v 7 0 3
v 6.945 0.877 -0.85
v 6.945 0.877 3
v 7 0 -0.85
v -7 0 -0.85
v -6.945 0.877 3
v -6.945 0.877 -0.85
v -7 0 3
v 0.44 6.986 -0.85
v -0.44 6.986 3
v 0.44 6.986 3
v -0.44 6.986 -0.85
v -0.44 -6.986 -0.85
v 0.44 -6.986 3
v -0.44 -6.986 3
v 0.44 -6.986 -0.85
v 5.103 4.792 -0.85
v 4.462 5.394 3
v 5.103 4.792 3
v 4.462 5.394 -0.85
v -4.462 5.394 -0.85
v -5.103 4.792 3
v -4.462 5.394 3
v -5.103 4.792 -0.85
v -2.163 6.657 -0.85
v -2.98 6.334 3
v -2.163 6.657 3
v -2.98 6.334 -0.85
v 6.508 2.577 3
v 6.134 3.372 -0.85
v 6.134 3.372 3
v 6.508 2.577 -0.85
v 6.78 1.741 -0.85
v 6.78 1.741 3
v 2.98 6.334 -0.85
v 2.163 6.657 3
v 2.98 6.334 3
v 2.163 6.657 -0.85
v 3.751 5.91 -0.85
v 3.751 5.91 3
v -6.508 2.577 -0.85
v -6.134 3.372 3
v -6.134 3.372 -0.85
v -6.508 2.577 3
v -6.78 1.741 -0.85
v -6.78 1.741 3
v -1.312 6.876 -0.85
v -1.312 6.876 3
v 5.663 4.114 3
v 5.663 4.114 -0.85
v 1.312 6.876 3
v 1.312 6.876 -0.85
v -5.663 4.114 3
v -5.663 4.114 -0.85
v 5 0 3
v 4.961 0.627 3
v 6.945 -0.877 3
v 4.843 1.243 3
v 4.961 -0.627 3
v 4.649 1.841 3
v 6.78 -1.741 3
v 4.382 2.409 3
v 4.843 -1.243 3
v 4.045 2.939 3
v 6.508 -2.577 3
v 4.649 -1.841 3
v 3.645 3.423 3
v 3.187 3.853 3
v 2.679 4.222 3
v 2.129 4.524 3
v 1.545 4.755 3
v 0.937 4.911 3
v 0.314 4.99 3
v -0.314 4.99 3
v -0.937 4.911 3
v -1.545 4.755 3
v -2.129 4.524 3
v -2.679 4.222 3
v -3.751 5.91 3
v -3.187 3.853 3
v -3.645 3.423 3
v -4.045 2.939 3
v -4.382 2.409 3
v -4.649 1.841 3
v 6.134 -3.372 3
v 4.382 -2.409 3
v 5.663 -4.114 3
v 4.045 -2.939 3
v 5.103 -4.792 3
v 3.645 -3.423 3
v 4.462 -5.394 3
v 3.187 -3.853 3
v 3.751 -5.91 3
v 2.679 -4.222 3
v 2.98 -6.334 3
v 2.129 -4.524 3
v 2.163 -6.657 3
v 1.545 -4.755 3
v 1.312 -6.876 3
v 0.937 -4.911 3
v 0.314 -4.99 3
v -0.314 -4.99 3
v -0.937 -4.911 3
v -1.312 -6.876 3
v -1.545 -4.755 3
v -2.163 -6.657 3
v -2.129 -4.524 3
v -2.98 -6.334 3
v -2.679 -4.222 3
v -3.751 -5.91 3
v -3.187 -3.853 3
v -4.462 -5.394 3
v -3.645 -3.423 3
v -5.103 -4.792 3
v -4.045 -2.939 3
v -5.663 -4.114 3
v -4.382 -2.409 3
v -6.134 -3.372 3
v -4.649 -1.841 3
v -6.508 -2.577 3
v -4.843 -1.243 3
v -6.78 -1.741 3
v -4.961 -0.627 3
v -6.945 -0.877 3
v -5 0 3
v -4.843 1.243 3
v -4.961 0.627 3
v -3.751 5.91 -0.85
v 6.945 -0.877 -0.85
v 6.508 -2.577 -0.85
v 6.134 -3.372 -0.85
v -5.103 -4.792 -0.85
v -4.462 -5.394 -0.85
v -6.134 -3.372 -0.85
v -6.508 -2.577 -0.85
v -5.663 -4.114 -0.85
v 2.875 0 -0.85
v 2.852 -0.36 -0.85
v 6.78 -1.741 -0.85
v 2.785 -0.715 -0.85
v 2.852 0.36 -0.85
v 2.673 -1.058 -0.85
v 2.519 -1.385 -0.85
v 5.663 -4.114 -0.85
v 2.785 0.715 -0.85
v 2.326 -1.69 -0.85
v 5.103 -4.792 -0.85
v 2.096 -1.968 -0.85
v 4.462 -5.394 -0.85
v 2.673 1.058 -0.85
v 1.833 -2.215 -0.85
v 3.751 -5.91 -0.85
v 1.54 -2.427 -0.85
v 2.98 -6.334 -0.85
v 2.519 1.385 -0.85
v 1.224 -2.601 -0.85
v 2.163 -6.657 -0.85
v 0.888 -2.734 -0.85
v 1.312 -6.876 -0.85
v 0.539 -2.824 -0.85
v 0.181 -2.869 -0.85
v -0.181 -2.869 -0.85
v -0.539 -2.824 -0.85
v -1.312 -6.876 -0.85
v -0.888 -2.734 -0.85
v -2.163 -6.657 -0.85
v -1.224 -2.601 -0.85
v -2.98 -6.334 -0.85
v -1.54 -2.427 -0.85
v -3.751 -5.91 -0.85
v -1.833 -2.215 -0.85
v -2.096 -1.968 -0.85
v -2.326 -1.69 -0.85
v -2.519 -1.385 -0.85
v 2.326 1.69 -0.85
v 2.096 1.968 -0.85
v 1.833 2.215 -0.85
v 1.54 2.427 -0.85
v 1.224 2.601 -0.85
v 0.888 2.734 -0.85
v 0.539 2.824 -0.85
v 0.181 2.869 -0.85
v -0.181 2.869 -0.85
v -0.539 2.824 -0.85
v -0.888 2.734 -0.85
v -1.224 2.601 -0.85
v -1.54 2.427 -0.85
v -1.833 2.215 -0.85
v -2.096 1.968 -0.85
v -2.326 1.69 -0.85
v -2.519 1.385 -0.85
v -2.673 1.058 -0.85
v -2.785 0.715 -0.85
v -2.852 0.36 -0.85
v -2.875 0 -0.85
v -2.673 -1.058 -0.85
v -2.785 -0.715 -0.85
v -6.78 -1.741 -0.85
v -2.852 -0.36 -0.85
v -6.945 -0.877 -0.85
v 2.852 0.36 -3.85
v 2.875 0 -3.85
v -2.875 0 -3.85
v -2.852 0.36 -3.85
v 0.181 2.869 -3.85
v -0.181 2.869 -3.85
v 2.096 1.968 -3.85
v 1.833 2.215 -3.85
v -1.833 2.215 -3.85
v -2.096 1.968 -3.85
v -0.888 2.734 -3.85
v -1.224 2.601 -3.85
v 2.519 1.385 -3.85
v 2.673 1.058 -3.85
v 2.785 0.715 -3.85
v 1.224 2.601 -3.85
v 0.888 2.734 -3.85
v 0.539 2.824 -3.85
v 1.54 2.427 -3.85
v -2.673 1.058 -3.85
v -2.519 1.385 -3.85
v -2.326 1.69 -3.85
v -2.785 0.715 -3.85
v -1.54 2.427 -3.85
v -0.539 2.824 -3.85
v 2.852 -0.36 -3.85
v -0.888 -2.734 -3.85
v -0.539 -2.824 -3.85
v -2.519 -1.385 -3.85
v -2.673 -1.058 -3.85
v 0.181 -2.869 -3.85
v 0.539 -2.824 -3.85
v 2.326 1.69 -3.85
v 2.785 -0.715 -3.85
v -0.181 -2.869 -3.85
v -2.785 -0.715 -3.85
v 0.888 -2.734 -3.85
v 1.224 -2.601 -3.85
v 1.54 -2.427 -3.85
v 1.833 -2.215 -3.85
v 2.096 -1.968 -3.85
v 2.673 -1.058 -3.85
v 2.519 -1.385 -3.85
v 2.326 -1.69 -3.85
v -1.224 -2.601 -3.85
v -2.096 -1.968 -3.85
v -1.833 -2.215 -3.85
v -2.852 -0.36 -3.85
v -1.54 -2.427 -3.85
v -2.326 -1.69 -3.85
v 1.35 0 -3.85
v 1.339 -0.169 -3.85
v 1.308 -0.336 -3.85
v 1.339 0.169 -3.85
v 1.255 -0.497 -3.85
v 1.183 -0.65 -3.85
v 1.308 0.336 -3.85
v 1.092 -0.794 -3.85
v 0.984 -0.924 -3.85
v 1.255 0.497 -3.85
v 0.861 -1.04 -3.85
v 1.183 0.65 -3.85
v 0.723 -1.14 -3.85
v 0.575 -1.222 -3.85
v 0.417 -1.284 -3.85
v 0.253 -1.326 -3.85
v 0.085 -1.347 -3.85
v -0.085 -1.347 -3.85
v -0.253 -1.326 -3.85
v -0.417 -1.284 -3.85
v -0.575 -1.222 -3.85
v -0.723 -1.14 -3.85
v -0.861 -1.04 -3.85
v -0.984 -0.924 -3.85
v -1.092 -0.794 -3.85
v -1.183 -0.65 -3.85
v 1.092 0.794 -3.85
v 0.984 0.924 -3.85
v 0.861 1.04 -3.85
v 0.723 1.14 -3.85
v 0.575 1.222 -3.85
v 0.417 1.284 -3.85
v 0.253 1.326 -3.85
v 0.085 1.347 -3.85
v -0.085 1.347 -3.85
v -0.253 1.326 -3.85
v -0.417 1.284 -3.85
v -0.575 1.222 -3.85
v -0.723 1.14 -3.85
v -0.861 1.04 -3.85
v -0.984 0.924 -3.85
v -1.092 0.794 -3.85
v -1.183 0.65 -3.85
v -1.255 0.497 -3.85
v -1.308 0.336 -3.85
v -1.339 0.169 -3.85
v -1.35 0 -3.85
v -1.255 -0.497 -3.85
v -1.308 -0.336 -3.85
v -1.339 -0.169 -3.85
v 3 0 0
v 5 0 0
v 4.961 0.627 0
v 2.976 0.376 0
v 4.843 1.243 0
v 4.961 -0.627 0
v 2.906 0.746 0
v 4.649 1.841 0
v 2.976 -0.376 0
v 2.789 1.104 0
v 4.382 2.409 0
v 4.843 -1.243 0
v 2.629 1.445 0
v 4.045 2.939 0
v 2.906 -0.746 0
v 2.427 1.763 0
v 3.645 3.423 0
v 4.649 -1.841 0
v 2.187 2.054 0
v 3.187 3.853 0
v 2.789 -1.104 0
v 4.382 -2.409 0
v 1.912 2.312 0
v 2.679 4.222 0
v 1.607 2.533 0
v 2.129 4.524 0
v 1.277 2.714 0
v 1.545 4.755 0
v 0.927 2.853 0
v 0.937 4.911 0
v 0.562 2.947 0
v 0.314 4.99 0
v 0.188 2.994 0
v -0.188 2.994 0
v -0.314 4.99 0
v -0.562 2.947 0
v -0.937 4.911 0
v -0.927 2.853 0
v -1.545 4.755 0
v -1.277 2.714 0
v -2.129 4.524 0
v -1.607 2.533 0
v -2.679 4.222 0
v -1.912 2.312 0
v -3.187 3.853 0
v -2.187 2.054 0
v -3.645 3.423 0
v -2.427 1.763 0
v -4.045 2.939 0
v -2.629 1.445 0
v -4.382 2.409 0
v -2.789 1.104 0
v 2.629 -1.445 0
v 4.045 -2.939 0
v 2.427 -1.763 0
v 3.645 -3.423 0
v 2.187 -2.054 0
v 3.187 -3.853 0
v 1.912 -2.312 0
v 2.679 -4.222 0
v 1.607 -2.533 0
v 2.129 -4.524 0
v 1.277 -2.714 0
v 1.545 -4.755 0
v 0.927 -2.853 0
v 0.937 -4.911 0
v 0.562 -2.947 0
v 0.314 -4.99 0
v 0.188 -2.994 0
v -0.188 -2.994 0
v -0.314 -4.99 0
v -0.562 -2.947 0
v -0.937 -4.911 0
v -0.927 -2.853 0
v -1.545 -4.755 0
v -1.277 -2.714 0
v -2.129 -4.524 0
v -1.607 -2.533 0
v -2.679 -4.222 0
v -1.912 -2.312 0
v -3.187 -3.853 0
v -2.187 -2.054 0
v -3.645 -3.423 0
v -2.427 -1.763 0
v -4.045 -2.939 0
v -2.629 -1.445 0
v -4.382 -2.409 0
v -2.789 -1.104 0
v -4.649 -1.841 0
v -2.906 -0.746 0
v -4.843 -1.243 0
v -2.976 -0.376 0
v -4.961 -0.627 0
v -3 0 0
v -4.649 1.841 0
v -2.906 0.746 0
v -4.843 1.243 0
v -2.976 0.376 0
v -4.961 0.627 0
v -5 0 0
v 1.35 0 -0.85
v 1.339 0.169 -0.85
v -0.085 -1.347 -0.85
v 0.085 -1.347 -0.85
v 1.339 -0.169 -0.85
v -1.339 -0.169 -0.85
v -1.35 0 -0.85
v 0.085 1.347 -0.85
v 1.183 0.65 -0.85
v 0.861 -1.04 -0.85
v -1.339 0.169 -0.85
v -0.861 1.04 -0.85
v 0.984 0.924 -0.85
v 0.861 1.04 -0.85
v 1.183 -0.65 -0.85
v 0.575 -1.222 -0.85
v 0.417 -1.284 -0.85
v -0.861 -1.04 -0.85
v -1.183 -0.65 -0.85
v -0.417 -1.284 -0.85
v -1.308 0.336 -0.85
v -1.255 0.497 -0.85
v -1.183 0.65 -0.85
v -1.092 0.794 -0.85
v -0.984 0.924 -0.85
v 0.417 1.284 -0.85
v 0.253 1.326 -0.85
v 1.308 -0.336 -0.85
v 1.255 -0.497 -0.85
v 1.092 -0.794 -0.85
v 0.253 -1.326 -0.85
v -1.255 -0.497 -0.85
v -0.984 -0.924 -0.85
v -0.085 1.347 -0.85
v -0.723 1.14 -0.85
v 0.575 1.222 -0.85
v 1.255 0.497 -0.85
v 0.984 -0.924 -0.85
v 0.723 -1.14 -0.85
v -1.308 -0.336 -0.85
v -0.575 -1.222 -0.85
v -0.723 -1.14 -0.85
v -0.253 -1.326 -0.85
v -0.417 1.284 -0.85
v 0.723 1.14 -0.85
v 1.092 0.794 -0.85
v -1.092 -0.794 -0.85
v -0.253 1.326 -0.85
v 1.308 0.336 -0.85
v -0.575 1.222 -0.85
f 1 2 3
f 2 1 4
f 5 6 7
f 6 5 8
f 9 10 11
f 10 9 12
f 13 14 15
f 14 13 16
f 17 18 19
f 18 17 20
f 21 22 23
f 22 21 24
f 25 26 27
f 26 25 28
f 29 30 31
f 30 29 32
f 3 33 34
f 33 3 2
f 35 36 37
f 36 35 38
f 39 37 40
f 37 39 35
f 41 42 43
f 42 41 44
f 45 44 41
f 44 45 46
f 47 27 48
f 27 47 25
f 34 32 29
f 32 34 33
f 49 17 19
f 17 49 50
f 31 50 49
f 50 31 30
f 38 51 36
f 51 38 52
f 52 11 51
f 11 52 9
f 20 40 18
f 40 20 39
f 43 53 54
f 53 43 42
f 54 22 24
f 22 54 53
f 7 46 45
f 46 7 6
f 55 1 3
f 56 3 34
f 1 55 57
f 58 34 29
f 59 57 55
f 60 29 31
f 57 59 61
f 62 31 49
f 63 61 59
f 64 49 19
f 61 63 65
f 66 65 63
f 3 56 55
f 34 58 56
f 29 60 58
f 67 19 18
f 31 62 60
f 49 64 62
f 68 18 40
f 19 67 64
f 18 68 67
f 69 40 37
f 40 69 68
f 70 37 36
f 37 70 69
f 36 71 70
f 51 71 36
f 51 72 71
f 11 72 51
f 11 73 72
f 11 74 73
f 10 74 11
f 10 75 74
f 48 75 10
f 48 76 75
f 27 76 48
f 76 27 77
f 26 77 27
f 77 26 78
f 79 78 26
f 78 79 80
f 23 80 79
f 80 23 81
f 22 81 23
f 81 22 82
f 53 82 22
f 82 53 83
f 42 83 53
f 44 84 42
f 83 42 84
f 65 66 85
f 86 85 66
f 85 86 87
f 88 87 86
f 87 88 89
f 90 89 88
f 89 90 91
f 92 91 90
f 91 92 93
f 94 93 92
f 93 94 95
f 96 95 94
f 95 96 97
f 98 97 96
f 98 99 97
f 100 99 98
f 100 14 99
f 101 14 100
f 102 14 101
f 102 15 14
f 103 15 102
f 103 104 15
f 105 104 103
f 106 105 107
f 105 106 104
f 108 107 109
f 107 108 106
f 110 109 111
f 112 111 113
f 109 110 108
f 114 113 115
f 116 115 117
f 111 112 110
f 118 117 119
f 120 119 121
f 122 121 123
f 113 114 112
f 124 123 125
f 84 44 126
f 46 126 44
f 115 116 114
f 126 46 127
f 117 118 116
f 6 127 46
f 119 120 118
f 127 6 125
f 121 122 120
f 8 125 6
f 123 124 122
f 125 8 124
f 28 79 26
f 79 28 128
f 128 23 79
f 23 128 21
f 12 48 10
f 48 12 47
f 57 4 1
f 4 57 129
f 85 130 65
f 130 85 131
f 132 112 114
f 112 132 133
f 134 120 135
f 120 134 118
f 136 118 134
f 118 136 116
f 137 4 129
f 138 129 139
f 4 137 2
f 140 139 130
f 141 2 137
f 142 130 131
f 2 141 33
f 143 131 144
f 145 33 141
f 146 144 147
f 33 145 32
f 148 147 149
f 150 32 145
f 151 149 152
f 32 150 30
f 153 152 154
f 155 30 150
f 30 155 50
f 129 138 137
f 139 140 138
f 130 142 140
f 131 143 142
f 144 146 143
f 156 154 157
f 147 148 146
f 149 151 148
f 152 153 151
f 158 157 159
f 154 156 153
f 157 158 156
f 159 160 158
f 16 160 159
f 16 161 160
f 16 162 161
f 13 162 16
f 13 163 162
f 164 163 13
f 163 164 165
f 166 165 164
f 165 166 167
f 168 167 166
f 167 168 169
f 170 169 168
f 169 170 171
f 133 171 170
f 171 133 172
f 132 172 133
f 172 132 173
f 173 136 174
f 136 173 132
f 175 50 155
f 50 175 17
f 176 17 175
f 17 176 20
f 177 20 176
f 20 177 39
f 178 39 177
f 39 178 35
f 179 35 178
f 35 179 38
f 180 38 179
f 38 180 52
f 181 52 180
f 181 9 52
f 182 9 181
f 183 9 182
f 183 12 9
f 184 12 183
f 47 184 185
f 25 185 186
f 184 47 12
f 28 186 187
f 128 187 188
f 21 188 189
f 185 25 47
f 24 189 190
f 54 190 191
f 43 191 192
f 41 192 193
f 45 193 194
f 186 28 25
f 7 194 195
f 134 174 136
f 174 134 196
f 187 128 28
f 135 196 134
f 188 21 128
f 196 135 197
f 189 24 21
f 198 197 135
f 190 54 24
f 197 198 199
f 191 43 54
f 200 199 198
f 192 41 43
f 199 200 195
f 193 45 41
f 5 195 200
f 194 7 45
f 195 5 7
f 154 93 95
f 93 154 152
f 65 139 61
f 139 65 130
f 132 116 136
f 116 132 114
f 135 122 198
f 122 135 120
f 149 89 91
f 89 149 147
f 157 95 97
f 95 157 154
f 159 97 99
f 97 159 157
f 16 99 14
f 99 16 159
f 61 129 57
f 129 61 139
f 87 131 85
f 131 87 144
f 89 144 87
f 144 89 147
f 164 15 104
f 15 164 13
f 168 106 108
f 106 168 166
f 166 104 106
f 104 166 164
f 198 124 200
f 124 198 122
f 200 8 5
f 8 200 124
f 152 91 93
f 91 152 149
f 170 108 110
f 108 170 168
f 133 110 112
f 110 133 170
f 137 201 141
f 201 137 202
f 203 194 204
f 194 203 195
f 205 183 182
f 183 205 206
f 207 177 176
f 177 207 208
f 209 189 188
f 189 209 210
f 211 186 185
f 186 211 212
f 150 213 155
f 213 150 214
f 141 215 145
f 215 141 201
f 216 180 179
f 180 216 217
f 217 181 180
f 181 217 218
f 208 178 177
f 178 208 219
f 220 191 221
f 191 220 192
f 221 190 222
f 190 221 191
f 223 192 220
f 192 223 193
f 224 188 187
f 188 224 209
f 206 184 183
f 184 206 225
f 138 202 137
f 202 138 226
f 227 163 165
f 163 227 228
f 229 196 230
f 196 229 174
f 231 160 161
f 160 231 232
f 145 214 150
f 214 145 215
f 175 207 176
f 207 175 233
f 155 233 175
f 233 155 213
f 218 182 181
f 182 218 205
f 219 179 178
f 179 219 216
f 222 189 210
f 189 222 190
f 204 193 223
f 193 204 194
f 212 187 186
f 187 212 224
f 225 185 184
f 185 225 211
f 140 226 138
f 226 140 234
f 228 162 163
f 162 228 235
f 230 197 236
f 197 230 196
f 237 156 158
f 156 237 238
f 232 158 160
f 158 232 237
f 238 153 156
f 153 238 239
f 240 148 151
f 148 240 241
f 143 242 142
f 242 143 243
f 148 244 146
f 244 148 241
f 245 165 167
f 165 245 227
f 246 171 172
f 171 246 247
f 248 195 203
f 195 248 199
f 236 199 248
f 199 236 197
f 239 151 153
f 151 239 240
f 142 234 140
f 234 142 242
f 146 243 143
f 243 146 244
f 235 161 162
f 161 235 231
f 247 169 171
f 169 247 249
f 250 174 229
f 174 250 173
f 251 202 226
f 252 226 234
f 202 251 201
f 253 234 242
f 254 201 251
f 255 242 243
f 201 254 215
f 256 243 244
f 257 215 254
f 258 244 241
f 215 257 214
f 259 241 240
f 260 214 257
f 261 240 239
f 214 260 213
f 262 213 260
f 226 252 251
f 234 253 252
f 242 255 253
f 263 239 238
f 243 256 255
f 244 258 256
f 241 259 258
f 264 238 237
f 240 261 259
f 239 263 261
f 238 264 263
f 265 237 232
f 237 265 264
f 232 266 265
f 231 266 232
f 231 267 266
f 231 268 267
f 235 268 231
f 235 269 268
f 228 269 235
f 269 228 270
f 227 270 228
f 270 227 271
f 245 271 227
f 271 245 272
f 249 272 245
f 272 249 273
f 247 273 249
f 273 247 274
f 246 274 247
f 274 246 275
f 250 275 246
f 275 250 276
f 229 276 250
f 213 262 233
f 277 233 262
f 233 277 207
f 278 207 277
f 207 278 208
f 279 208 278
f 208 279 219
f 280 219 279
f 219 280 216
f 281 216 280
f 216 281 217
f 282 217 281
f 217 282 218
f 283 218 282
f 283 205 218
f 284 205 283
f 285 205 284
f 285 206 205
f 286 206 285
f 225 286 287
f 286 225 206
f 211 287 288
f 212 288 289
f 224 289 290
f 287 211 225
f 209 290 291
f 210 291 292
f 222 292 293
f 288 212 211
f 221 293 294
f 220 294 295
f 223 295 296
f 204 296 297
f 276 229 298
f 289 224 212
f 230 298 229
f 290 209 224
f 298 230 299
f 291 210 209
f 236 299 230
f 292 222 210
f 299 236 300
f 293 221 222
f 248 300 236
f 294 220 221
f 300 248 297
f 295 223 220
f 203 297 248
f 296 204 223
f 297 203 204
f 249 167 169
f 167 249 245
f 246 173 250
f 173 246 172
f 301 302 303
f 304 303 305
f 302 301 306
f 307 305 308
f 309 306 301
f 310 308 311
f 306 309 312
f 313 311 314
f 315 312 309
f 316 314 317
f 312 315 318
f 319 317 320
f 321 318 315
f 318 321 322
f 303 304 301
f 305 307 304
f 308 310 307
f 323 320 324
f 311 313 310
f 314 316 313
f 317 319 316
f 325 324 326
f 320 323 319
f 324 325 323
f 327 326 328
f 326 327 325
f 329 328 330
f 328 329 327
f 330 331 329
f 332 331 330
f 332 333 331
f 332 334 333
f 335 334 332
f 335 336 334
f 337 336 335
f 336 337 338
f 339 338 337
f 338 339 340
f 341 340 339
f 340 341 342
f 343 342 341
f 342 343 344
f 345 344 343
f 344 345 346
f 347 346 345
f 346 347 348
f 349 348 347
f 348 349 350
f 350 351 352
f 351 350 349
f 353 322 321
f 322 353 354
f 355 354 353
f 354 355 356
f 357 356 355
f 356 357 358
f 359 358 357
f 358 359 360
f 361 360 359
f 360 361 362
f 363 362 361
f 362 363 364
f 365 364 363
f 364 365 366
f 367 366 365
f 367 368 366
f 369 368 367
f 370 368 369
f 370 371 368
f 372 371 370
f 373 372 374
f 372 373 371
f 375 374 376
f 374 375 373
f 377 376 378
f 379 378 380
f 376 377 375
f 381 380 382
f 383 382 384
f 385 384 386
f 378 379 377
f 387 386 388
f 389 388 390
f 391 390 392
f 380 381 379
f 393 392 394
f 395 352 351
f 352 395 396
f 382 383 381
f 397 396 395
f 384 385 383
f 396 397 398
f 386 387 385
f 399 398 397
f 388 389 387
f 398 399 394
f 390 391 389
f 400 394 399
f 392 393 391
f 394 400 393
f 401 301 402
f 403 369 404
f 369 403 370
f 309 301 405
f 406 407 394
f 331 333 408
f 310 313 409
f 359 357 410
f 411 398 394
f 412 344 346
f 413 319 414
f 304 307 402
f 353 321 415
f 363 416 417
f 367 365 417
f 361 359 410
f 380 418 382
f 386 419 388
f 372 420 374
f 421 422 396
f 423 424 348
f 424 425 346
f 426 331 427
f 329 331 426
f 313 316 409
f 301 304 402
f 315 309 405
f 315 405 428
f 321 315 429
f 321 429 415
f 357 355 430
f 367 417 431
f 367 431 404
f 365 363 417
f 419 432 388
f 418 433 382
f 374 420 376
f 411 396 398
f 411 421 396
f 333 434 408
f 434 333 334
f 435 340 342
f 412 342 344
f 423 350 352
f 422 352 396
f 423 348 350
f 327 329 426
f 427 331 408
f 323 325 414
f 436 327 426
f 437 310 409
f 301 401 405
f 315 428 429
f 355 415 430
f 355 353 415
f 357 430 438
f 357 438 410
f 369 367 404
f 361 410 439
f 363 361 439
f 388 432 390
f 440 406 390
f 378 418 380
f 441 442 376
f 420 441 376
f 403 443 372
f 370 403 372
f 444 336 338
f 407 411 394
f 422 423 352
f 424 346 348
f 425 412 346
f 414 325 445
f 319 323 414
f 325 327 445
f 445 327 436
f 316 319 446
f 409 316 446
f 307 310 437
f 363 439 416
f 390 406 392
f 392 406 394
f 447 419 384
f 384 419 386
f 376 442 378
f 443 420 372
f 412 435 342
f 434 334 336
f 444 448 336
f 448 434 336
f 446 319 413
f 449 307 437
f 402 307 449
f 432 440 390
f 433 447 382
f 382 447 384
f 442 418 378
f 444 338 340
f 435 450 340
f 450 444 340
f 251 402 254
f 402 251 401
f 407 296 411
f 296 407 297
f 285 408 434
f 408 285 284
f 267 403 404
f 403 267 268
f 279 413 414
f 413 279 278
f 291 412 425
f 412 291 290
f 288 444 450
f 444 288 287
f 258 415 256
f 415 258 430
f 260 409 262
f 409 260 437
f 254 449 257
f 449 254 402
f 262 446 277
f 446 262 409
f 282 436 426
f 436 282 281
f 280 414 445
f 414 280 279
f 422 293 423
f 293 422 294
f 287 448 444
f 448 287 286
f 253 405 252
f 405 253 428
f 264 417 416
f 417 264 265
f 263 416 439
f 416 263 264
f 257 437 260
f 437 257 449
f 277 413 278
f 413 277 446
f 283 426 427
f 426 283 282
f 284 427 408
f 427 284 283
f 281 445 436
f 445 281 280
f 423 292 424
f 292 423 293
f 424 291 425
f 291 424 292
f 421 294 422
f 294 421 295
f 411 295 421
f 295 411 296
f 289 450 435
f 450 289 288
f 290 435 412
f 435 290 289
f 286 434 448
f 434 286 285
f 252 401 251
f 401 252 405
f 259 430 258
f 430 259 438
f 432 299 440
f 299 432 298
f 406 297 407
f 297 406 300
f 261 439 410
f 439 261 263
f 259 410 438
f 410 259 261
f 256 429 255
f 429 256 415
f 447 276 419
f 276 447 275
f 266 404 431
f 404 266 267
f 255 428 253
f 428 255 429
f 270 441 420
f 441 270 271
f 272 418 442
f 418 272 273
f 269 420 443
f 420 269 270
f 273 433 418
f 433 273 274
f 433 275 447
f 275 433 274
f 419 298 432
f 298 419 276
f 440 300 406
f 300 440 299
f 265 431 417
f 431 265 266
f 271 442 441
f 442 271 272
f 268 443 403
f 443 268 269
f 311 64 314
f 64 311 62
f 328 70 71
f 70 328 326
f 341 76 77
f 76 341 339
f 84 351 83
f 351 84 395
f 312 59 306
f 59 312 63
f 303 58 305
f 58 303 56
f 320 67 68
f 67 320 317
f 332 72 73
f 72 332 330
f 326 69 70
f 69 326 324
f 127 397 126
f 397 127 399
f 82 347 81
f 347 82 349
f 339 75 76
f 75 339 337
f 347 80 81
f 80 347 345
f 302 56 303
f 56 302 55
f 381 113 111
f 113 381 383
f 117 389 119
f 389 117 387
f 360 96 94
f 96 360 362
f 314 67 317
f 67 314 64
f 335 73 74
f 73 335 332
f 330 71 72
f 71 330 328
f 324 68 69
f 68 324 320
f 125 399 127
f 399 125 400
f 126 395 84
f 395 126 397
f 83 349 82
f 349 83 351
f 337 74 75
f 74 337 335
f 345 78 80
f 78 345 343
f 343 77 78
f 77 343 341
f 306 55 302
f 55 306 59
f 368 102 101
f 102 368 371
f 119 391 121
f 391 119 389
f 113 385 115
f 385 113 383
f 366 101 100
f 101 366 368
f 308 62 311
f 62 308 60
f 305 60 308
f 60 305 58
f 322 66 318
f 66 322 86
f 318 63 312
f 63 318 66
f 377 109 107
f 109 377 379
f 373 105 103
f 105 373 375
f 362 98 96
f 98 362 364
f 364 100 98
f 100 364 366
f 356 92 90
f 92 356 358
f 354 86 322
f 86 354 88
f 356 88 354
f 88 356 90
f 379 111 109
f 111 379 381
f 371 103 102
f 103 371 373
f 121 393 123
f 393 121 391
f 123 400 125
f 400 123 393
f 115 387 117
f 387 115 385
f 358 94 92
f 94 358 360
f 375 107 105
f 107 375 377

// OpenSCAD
$fn = 50;


difference() {
	union() {
		translate(v = [0, 0, -0.8500000000]) {
			cylinder(h = 3.8500000000, r = 7.0000000000);
		}
		#translate(v = [0, 0, -3.8500000000]) {
			cylinder(h = 3.8500000000, r = 2.8750000000);
		}
	}
	union() {
		translate(v = [0, 0, 0]) {
			rotate(a = [0, 0, 0]) {
				difference() {
					union() {
						translate(v = [0, 0, -3.8500000000]) {
							cylinder(h = 3.8500000000, r = 1.0000000000);
						}
						translate(v = [0, 0, -0.8500000000]) {
							cylinder(h = 0.8500000000, r1 = 1.3500000000, r2 = 3.0000000000);
						}
						translate(v = [0, 0, -3.8500000000]) {
							cylinder(h = 3.8500000000, r = 1.3500000000);
						}
						translate(v = [0, 0, -3.8500000000]) {
							cylinder(h = 3.8500000000, r = 1.0000000000);
						}
					}
					union();
				}
			}
		}
		#cylinder(h = 3, r = 5.0000000000);
	}
}
